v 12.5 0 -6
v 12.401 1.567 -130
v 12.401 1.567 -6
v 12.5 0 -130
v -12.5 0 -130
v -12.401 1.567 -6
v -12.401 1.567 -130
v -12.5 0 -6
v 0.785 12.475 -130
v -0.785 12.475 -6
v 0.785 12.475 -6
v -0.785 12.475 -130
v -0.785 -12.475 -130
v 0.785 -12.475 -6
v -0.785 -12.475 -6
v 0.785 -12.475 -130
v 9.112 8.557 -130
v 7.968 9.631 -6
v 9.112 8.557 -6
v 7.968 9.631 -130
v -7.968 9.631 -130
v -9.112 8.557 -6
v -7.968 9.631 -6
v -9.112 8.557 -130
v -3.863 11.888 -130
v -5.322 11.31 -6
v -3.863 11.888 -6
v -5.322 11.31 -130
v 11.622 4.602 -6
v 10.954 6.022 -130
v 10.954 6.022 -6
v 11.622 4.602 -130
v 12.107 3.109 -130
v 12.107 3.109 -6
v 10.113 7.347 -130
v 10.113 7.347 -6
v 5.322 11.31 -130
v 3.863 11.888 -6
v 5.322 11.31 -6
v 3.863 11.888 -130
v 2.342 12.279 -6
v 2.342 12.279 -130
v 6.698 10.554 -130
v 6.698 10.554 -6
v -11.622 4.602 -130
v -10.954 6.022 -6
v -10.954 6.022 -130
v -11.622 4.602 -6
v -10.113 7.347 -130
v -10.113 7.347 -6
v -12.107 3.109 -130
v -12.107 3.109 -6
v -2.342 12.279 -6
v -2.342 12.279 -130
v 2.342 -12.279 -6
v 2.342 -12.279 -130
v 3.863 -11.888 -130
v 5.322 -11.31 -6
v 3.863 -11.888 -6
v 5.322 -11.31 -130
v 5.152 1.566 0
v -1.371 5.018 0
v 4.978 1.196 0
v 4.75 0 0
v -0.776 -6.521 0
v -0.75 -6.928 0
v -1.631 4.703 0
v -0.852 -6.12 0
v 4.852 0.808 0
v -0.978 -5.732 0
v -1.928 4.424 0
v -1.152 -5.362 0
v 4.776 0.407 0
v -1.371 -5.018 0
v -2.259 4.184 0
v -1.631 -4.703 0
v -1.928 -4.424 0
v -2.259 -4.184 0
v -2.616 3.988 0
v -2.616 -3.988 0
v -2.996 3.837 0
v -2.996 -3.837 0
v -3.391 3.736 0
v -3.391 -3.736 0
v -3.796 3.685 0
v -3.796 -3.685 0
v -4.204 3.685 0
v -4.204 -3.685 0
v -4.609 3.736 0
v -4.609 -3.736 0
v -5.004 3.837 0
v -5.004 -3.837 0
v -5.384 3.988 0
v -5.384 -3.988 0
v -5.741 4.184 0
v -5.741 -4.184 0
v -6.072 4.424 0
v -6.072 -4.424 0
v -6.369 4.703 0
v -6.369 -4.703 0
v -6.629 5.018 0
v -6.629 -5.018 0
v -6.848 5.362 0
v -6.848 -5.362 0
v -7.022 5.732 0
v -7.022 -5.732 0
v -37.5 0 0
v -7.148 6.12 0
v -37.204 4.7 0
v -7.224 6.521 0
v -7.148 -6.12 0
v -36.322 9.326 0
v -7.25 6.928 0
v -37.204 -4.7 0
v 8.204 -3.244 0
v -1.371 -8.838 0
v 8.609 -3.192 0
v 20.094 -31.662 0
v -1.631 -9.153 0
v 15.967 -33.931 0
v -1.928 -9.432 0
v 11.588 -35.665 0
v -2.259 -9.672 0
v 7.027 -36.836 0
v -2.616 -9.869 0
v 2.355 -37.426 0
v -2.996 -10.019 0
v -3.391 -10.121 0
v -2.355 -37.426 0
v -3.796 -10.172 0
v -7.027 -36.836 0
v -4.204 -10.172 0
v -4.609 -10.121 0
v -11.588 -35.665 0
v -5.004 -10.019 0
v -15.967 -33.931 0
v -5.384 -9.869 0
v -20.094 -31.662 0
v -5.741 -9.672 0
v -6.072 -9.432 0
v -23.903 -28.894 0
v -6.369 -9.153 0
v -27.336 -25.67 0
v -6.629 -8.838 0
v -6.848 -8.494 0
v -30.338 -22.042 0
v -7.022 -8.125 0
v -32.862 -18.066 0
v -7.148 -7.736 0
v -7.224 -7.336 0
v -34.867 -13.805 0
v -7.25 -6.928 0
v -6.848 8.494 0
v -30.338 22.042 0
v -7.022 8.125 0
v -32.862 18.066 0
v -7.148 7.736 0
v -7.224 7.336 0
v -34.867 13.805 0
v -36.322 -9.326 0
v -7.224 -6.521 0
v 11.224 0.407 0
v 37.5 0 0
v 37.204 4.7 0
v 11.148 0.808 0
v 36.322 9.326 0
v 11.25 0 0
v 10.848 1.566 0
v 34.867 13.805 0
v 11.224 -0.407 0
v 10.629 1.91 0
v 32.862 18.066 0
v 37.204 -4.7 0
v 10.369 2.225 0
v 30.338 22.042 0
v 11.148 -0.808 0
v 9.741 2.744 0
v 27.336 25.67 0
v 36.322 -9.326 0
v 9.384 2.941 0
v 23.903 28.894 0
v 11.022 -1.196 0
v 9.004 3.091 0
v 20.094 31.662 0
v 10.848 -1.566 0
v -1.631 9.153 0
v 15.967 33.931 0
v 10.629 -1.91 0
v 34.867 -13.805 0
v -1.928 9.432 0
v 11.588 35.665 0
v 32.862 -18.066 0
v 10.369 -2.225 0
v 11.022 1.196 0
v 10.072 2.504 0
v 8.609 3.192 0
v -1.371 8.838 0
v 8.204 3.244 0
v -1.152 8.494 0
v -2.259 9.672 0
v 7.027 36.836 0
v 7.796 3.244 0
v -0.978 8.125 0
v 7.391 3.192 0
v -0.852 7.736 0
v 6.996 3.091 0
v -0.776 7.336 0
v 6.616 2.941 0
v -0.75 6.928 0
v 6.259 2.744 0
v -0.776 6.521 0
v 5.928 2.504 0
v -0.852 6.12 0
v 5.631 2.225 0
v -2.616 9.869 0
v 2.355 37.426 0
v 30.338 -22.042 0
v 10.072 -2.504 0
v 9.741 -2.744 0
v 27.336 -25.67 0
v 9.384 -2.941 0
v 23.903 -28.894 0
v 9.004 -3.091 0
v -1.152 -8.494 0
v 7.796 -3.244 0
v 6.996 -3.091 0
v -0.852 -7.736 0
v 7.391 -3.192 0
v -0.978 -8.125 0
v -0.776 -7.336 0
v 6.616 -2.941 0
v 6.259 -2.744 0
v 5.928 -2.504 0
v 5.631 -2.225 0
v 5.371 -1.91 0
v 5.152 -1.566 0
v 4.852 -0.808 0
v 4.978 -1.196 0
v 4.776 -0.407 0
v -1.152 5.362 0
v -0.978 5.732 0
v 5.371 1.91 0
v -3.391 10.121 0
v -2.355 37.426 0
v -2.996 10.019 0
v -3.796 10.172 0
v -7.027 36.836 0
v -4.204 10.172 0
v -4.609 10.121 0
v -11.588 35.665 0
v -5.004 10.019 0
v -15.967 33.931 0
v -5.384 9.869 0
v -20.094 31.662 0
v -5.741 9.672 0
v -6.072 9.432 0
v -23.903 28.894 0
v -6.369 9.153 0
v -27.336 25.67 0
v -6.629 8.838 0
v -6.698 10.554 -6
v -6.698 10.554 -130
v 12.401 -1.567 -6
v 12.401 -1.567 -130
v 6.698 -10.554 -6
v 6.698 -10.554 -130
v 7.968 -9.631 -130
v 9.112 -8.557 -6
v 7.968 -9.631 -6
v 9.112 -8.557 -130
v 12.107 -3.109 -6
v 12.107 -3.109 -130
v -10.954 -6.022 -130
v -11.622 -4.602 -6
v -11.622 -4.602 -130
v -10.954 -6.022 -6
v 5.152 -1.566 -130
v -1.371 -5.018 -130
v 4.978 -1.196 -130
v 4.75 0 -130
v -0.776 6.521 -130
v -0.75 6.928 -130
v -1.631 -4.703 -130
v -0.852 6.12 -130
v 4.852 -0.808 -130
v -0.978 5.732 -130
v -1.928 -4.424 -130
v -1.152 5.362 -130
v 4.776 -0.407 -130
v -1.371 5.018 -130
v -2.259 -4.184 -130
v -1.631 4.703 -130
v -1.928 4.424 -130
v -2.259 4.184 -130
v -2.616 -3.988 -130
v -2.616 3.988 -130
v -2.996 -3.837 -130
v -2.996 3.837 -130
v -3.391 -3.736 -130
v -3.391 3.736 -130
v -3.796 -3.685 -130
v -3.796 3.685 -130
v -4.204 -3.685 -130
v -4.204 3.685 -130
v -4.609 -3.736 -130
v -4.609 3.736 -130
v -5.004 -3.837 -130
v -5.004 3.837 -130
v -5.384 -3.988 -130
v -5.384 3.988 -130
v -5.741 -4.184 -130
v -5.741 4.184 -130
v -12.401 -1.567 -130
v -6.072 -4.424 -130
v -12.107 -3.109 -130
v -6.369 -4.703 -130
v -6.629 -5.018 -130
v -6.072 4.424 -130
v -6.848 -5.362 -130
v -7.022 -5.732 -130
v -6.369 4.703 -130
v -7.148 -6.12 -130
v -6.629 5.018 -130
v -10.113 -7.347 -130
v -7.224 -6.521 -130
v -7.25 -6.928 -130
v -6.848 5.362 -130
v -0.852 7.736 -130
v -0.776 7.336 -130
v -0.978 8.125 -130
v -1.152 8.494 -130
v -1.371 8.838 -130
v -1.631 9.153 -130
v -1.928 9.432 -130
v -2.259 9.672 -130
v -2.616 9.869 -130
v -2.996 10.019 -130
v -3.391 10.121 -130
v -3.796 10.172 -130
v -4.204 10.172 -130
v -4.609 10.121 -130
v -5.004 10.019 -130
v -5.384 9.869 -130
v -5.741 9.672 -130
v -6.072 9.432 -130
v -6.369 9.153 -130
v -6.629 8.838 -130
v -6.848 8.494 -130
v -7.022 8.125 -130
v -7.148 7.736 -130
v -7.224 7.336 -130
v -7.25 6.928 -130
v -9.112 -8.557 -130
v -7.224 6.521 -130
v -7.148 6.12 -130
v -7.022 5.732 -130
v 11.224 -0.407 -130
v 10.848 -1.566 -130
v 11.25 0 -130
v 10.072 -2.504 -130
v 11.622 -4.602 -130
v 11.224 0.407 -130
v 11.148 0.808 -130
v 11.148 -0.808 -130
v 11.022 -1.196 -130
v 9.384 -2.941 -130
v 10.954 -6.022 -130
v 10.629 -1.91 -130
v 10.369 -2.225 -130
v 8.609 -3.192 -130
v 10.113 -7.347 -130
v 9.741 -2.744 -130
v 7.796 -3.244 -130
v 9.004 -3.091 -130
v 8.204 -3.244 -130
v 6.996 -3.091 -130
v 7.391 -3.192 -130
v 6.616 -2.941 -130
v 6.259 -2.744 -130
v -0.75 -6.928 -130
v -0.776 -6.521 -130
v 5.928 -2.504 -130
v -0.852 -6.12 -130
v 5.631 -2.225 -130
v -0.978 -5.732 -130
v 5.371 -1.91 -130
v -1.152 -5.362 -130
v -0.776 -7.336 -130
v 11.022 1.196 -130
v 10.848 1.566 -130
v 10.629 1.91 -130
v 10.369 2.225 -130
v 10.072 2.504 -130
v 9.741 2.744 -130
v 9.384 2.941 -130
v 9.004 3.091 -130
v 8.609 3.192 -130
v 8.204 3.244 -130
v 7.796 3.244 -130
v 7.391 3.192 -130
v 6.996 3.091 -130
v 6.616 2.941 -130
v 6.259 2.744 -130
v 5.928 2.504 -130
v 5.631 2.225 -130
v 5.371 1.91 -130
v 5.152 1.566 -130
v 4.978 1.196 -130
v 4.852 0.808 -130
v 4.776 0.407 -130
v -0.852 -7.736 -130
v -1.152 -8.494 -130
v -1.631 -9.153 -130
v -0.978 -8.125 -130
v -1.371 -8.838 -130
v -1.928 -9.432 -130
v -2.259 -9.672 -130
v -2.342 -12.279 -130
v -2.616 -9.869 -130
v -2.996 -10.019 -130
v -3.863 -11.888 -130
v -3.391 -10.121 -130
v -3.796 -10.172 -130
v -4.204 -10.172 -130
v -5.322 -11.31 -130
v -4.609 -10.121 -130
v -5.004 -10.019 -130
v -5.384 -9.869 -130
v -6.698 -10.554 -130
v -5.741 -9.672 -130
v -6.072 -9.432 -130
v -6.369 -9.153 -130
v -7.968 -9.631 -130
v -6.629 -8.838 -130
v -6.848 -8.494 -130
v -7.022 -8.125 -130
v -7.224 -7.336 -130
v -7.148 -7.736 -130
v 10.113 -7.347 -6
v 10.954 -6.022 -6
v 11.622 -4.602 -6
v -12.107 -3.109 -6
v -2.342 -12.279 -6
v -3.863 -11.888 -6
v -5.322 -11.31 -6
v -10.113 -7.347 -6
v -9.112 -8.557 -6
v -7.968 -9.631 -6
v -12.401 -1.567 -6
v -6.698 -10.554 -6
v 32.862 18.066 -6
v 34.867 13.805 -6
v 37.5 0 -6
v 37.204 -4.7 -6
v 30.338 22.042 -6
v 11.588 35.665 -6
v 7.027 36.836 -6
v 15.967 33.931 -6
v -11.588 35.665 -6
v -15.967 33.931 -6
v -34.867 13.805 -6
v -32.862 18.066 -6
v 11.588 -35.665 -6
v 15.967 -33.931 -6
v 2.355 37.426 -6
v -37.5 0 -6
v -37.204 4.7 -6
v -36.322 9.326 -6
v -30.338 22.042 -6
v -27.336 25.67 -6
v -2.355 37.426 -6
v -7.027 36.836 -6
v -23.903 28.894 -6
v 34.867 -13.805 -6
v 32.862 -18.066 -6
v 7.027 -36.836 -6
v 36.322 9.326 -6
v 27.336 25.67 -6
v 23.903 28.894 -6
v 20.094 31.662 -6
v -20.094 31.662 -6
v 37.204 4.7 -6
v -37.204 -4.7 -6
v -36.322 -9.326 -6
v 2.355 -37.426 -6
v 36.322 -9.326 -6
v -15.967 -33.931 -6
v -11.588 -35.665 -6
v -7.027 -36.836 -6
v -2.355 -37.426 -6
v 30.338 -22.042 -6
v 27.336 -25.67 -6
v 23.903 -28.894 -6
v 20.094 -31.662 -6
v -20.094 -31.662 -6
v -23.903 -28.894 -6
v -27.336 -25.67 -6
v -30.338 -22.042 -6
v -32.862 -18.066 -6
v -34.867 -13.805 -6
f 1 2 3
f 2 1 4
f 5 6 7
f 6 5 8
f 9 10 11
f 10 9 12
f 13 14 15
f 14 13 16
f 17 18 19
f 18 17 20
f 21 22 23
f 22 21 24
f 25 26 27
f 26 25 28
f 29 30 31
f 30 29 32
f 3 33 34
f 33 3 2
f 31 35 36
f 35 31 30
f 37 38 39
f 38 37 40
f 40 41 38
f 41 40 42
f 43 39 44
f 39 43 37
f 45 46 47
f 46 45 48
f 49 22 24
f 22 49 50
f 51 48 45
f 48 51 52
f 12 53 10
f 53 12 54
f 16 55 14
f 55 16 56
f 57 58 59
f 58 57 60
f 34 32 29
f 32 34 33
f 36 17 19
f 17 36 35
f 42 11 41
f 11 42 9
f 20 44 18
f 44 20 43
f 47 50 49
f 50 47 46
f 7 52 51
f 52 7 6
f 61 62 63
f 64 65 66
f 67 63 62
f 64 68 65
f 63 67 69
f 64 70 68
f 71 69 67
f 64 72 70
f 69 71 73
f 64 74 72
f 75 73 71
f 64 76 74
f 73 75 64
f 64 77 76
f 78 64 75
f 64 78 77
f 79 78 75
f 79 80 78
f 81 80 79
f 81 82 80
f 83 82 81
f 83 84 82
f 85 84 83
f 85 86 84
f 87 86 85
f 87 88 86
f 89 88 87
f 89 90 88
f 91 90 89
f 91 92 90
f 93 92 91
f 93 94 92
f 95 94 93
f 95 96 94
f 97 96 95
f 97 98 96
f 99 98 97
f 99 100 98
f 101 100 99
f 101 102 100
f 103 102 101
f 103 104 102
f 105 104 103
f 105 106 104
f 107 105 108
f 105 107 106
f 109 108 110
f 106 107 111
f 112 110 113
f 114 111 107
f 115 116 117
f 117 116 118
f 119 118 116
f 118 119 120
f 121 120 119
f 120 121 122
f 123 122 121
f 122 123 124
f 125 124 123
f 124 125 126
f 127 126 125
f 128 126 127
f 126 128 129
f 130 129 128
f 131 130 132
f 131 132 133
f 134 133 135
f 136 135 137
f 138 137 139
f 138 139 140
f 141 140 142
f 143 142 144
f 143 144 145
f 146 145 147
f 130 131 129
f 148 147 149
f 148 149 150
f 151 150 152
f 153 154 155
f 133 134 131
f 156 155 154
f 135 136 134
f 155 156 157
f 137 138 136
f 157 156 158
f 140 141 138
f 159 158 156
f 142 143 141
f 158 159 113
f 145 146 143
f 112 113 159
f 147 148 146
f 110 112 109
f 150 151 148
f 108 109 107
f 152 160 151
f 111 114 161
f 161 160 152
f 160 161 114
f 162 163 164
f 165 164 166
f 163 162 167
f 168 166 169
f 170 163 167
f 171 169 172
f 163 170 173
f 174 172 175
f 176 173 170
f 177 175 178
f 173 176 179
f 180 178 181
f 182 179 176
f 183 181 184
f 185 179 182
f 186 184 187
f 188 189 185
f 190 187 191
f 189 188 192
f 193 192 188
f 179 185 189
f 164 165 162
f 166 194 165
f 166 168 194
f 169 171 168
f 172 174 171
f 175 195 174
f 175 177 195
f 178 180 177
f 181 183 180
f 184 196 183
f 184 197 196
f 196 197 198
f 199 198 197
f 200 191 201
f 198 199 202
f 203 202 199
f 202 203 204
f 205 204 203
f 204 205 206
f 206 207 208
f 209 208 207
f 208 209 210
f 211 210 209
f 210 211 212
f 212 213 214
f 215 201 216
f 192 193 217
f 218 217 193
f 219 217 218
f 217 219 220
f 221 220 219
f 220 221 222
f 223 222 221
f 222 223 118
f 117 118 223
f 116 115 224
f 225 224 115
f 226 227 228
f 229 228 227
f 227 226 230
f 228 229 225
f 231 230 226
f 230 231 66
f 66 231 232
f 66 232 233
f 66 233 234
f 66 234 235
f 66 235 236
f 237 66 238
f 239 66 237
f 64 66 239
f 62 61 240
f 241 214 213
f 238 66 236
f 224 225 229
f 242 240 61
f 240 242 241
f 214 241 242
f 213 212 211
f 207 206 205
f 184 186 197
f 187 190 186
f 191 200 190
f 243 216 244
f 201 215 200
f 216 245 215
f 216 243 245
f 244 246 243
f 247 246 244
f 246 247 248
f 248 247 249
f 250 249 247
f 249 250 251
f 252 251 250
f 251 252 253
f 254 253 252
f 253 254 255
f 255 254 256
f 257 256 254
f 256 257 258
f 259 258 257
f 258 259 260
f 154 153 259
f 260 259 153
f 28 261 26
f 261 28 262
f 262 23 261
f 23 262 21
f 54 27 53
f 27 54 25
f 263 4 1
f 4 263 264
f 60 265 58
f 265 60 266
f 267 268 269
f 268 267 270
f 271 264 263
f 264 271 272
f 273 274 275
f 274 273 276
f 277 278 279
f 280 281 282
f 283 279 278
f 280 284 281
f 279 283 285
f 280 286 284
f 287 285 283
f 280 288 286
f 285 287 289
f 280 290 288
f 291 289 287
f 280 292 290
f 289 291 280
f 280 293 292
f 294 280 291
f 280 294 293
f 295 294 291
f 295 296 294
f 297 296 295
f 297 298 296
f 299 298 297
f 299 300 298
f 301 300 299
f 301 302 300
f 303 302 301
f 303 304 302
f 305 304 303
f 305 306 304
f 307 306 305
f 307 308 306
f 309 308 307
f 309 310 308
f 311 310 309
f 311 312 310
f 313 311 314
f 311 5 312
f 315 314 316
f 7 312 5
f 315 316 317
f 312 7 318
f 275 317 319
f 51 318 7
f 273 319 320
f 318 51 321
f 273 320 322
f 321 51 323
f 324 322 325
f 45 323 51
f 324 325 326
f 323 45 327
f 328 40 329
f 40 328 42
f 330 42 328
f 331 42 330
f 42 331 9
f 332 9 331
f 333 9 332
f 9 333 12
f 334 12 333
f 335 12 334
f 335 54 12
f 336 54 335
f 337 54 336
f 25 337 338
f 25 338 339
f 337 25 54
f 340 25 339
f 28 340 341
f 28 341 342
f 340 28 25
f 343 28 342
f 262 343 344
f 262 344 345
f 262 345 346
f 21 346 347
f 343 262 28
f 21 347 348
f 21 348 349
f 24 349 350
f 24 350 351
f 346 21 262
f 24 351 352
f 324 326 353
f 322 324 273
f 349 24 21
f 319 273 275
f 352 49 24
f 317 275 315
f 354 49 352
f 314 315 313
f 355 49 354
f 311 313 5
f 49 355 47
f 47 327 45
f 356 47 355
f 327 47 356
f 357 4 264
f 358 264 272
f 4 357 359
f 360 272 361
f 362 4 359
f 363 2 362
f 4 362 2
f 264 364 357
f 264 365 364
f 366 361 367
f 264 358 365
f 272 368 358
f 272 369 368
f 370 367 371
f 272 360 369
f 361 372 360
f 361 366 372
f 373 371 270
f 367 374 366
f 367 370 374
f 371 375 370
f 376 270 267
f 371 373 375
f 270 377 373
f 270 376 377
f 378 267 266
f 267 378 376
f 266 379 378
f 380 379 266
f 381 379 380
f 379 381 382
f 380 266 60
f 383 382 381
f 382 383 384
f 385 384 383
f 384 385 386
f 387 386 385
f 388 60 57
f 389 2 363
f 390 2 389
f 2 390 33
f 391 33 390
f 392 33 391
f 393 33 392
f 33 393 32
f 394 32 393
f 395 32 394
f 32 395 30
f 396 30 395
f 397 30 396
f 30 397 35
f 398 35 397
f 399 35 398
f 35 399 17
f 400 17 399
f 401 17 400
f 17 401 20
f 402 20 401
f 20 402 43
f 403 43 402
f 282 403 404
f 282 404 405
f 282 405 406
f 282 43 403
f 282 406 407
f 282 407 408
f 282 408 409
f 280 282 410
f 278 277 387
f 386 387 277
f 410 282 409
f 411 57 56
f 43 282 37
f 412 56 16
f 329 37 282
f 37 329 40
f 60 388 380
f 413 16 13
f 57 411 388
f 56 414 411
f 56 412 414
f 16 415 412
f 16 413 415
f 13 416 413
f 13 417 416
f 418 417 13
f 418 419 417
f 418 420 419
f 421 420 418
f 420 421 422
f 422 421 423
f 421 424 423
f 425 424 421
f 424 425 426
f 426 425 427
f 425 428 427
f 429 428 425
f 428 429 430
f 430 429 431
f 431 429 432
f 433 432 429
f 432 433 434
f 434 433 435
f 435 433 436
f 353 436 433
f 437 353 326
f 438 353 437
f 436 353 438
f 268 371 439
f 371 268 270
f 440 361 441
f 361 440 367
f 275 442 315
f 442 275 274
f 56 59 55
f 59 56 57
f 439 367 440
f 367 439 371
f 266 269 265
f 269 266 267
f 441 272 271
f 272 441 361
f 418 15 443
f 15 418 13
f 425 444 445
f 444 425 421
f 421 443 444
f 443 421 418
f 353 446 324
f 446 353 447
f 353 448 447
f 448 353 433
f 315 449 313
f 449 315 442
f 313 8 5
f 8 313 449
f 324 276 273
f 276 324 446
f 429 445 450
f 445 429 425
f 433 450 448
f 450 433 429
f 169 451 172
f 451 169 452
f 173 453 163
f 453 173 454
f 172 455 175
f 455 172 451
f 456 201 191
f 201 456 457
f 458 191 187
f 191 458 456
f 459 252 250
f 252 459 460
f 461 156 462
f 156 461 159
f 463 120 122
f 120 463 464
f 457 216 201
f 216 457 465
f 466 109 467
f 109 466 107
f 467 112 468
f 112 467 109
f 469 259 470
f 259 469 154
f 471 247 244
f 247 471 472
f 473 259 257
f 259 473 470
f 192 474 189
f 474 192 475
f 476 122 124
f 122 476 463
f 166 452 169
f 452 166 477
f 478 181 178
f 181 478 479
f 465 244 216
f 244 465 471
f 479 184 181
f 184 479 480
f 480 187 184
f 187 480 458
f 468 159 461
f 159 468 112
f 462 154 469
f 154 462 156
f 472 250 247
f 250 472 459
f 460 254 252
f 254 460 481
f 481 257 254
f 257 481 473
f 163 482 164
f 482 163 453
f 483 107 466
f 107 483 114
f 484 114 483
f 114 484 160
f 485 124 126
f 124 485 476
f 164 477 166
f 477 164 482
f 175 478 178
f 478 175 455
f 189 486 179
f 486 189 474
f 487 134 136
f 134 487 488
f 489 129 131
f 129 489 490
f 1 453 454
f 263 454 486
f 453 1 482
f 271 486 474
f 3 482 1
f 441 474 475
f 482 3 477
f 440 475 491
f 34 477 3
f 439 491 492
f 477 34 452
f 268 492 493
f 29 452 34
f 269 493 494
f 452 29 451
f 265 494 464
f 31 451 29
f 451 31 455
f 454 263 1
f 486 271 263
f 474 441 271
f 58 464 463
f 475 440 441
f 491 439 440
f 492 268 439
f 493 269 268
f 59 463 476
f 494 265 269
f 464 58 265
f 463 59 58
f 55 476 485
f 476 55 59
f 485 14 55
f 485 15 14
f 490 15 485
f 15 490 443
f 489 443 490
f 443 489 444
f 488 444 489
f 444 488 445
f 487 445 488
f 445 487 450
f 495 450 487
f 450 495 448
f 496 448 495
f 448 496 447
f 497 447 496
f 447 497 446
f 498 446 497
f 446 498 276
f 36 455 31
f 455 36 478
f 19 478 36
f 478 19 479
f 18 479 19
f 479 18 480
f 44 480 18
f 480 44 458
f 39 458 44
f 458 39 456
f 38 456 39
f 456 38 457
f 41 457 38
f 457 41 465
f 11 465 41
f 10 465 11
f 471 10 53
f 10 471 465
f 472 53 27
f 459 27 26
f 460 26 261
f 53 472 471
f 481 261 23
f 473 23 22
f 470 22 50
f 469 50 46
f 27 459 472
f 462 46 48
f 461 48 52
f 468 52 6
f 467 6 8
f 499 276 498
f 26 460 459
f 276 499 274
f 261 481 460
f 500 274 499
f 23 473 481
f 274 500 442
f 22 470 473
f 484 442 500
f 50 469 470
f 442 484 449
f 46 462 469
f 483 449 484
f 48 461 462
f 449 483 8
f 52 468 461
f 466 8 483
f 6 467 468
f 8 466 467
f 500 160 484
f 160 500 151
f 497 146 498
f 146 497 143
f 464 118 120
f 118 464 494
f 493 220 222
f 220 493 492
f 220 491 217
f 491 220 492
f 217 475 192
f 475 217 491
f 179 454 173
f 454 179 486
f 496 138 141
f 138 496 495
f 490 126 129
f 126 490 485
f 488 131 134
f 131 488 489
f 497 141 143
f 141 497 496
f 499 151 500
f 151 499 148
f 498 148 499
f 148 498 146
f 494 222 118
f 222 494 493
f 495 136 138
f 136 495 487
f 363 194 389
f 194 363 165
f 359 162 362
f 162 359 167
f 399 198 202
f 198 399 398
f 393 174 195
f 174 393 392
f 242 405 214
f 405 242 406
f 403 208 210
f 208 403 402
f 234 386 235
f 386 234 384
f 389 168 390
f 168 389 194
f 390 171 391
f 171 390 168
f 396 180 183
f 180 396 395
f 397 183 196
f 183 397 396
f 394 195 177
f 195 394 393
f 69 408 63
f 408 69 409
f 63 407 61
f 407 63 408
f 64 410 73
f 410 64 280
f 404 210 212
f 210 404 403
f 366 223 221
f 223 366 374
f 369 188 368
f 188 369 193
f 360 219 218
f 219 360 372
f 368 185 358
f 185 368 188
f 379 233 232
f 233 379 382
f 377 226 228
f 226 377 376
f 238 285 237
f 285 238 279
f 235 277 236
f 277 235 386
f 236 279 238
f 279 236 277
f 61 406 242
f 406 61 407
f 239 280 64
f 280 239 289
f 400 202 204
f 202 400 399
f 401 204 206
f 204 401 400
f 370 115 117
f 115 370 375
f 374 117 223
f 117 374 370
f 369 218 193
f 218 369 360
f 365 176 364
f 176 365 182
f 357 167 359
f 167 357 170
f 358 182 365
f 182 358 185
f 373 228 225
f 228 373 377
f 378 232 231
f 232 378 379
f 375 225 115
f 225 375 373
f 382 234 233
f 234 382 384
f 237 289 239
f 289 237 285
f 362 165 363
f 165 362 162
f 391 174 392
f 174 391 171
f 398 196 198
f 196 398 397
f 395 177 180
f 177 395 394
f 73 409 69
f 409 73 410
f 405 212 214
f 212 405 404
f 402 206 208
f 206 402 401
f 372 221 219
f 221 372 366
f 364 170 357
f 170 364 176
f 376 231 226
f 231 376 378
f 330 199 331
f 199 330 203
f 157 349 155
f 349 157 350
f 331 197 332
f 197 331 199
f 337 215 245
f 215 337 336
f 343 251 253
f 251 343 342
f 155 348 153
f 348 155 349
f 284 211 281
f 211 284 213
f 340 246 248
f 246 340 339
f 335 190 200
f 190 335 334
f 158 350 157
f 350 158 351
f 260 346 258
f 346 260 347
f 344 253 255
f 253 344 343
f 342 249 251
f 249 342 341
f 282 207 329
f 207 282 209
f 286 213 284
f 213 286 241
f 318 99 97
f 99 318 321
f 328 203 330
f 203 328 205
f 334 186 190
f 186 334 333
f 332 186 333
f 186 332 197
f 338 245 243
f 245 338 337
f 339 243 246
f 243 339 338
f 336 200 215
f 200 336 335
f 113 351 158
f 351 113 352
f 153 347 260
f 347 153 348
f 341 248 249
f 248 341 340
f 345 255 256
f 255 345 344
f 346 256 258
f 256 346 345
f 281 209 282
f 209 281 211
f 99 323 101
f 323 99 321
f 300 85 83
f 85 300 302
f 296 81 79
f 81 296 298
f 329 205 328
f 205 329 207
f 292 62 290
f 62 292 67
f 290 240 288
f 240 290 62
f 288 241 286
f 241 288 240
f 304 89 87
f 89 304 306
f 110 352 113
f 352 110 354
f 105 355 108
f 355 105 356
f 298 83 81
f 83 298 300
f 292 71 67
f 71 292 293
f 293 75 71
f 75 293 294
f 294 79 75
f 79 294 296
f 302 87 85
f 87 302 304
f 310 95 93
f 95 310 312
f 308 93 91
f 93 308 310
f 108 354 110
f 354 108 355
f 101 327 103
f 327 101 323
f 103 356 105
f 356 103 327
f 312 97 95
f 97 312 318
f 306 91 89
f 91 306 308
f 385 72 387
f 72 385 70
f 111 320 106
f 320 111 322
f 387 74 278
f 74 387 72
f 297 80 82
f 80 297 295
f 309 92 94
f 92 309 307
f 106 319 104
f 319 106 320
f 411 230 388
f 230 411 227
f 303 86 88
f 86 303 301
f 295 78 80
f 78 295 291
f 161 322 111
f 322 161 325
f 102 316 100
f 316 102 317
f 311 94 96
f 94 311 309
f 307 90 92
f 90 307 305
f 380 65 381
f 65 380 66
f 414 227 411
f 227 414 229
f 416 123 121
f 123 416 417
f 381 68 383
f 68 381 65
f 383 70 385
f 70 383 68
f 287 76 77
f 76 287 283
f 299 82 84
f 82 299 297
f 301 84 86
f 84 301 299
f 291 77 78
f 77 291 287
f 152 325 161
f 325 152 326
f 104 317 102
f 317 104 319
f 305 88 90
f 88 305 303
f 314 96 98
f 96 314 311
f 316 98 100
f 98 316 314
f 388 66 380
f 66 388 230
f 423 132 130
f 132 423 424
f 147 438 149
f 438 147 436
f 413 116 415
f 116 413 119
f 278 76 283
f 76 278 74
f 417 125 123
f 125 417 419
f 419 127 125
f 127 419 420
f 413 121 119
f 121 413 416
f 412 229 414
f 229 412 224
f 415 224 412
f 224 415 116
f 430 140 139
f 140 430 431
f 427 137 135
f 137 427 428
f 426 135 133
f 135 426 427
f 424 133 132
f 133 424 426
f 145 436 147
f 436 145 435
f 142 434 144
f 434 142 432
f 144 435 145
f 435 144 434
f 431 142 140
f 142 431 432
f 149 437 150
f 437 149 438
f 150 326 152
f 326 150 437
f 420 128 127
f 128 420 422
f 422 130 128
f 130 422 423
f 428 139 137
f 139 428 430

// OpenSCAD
$fn = 50;


difference() {
	union() {
		translate(v = [0, 0, -130.0000000000]) {
			cylinder(h = 130, r = 12.5000000000);
		}
		translate(v = [0, 0, -6.0000000000]) {
			cylinder(h = 6, r = 37.5000000000);
		}
	}
	union() {
		#translate(v = [8.0000000000, 0.0000000000, -130]) {
			cylinder(h = 130, r = 3.2500000000);
		}
		#translate(v = [-4.0000000000, 6.9282032303, -130]) {
			cylinder(h = 130, r = 3.2500000000);
		}
		#translate(v = [-4.0000000000, -6.9282032303, -130]) {
			cylinder(h = 130, r = 3.2500000000);
		}
	}
}
